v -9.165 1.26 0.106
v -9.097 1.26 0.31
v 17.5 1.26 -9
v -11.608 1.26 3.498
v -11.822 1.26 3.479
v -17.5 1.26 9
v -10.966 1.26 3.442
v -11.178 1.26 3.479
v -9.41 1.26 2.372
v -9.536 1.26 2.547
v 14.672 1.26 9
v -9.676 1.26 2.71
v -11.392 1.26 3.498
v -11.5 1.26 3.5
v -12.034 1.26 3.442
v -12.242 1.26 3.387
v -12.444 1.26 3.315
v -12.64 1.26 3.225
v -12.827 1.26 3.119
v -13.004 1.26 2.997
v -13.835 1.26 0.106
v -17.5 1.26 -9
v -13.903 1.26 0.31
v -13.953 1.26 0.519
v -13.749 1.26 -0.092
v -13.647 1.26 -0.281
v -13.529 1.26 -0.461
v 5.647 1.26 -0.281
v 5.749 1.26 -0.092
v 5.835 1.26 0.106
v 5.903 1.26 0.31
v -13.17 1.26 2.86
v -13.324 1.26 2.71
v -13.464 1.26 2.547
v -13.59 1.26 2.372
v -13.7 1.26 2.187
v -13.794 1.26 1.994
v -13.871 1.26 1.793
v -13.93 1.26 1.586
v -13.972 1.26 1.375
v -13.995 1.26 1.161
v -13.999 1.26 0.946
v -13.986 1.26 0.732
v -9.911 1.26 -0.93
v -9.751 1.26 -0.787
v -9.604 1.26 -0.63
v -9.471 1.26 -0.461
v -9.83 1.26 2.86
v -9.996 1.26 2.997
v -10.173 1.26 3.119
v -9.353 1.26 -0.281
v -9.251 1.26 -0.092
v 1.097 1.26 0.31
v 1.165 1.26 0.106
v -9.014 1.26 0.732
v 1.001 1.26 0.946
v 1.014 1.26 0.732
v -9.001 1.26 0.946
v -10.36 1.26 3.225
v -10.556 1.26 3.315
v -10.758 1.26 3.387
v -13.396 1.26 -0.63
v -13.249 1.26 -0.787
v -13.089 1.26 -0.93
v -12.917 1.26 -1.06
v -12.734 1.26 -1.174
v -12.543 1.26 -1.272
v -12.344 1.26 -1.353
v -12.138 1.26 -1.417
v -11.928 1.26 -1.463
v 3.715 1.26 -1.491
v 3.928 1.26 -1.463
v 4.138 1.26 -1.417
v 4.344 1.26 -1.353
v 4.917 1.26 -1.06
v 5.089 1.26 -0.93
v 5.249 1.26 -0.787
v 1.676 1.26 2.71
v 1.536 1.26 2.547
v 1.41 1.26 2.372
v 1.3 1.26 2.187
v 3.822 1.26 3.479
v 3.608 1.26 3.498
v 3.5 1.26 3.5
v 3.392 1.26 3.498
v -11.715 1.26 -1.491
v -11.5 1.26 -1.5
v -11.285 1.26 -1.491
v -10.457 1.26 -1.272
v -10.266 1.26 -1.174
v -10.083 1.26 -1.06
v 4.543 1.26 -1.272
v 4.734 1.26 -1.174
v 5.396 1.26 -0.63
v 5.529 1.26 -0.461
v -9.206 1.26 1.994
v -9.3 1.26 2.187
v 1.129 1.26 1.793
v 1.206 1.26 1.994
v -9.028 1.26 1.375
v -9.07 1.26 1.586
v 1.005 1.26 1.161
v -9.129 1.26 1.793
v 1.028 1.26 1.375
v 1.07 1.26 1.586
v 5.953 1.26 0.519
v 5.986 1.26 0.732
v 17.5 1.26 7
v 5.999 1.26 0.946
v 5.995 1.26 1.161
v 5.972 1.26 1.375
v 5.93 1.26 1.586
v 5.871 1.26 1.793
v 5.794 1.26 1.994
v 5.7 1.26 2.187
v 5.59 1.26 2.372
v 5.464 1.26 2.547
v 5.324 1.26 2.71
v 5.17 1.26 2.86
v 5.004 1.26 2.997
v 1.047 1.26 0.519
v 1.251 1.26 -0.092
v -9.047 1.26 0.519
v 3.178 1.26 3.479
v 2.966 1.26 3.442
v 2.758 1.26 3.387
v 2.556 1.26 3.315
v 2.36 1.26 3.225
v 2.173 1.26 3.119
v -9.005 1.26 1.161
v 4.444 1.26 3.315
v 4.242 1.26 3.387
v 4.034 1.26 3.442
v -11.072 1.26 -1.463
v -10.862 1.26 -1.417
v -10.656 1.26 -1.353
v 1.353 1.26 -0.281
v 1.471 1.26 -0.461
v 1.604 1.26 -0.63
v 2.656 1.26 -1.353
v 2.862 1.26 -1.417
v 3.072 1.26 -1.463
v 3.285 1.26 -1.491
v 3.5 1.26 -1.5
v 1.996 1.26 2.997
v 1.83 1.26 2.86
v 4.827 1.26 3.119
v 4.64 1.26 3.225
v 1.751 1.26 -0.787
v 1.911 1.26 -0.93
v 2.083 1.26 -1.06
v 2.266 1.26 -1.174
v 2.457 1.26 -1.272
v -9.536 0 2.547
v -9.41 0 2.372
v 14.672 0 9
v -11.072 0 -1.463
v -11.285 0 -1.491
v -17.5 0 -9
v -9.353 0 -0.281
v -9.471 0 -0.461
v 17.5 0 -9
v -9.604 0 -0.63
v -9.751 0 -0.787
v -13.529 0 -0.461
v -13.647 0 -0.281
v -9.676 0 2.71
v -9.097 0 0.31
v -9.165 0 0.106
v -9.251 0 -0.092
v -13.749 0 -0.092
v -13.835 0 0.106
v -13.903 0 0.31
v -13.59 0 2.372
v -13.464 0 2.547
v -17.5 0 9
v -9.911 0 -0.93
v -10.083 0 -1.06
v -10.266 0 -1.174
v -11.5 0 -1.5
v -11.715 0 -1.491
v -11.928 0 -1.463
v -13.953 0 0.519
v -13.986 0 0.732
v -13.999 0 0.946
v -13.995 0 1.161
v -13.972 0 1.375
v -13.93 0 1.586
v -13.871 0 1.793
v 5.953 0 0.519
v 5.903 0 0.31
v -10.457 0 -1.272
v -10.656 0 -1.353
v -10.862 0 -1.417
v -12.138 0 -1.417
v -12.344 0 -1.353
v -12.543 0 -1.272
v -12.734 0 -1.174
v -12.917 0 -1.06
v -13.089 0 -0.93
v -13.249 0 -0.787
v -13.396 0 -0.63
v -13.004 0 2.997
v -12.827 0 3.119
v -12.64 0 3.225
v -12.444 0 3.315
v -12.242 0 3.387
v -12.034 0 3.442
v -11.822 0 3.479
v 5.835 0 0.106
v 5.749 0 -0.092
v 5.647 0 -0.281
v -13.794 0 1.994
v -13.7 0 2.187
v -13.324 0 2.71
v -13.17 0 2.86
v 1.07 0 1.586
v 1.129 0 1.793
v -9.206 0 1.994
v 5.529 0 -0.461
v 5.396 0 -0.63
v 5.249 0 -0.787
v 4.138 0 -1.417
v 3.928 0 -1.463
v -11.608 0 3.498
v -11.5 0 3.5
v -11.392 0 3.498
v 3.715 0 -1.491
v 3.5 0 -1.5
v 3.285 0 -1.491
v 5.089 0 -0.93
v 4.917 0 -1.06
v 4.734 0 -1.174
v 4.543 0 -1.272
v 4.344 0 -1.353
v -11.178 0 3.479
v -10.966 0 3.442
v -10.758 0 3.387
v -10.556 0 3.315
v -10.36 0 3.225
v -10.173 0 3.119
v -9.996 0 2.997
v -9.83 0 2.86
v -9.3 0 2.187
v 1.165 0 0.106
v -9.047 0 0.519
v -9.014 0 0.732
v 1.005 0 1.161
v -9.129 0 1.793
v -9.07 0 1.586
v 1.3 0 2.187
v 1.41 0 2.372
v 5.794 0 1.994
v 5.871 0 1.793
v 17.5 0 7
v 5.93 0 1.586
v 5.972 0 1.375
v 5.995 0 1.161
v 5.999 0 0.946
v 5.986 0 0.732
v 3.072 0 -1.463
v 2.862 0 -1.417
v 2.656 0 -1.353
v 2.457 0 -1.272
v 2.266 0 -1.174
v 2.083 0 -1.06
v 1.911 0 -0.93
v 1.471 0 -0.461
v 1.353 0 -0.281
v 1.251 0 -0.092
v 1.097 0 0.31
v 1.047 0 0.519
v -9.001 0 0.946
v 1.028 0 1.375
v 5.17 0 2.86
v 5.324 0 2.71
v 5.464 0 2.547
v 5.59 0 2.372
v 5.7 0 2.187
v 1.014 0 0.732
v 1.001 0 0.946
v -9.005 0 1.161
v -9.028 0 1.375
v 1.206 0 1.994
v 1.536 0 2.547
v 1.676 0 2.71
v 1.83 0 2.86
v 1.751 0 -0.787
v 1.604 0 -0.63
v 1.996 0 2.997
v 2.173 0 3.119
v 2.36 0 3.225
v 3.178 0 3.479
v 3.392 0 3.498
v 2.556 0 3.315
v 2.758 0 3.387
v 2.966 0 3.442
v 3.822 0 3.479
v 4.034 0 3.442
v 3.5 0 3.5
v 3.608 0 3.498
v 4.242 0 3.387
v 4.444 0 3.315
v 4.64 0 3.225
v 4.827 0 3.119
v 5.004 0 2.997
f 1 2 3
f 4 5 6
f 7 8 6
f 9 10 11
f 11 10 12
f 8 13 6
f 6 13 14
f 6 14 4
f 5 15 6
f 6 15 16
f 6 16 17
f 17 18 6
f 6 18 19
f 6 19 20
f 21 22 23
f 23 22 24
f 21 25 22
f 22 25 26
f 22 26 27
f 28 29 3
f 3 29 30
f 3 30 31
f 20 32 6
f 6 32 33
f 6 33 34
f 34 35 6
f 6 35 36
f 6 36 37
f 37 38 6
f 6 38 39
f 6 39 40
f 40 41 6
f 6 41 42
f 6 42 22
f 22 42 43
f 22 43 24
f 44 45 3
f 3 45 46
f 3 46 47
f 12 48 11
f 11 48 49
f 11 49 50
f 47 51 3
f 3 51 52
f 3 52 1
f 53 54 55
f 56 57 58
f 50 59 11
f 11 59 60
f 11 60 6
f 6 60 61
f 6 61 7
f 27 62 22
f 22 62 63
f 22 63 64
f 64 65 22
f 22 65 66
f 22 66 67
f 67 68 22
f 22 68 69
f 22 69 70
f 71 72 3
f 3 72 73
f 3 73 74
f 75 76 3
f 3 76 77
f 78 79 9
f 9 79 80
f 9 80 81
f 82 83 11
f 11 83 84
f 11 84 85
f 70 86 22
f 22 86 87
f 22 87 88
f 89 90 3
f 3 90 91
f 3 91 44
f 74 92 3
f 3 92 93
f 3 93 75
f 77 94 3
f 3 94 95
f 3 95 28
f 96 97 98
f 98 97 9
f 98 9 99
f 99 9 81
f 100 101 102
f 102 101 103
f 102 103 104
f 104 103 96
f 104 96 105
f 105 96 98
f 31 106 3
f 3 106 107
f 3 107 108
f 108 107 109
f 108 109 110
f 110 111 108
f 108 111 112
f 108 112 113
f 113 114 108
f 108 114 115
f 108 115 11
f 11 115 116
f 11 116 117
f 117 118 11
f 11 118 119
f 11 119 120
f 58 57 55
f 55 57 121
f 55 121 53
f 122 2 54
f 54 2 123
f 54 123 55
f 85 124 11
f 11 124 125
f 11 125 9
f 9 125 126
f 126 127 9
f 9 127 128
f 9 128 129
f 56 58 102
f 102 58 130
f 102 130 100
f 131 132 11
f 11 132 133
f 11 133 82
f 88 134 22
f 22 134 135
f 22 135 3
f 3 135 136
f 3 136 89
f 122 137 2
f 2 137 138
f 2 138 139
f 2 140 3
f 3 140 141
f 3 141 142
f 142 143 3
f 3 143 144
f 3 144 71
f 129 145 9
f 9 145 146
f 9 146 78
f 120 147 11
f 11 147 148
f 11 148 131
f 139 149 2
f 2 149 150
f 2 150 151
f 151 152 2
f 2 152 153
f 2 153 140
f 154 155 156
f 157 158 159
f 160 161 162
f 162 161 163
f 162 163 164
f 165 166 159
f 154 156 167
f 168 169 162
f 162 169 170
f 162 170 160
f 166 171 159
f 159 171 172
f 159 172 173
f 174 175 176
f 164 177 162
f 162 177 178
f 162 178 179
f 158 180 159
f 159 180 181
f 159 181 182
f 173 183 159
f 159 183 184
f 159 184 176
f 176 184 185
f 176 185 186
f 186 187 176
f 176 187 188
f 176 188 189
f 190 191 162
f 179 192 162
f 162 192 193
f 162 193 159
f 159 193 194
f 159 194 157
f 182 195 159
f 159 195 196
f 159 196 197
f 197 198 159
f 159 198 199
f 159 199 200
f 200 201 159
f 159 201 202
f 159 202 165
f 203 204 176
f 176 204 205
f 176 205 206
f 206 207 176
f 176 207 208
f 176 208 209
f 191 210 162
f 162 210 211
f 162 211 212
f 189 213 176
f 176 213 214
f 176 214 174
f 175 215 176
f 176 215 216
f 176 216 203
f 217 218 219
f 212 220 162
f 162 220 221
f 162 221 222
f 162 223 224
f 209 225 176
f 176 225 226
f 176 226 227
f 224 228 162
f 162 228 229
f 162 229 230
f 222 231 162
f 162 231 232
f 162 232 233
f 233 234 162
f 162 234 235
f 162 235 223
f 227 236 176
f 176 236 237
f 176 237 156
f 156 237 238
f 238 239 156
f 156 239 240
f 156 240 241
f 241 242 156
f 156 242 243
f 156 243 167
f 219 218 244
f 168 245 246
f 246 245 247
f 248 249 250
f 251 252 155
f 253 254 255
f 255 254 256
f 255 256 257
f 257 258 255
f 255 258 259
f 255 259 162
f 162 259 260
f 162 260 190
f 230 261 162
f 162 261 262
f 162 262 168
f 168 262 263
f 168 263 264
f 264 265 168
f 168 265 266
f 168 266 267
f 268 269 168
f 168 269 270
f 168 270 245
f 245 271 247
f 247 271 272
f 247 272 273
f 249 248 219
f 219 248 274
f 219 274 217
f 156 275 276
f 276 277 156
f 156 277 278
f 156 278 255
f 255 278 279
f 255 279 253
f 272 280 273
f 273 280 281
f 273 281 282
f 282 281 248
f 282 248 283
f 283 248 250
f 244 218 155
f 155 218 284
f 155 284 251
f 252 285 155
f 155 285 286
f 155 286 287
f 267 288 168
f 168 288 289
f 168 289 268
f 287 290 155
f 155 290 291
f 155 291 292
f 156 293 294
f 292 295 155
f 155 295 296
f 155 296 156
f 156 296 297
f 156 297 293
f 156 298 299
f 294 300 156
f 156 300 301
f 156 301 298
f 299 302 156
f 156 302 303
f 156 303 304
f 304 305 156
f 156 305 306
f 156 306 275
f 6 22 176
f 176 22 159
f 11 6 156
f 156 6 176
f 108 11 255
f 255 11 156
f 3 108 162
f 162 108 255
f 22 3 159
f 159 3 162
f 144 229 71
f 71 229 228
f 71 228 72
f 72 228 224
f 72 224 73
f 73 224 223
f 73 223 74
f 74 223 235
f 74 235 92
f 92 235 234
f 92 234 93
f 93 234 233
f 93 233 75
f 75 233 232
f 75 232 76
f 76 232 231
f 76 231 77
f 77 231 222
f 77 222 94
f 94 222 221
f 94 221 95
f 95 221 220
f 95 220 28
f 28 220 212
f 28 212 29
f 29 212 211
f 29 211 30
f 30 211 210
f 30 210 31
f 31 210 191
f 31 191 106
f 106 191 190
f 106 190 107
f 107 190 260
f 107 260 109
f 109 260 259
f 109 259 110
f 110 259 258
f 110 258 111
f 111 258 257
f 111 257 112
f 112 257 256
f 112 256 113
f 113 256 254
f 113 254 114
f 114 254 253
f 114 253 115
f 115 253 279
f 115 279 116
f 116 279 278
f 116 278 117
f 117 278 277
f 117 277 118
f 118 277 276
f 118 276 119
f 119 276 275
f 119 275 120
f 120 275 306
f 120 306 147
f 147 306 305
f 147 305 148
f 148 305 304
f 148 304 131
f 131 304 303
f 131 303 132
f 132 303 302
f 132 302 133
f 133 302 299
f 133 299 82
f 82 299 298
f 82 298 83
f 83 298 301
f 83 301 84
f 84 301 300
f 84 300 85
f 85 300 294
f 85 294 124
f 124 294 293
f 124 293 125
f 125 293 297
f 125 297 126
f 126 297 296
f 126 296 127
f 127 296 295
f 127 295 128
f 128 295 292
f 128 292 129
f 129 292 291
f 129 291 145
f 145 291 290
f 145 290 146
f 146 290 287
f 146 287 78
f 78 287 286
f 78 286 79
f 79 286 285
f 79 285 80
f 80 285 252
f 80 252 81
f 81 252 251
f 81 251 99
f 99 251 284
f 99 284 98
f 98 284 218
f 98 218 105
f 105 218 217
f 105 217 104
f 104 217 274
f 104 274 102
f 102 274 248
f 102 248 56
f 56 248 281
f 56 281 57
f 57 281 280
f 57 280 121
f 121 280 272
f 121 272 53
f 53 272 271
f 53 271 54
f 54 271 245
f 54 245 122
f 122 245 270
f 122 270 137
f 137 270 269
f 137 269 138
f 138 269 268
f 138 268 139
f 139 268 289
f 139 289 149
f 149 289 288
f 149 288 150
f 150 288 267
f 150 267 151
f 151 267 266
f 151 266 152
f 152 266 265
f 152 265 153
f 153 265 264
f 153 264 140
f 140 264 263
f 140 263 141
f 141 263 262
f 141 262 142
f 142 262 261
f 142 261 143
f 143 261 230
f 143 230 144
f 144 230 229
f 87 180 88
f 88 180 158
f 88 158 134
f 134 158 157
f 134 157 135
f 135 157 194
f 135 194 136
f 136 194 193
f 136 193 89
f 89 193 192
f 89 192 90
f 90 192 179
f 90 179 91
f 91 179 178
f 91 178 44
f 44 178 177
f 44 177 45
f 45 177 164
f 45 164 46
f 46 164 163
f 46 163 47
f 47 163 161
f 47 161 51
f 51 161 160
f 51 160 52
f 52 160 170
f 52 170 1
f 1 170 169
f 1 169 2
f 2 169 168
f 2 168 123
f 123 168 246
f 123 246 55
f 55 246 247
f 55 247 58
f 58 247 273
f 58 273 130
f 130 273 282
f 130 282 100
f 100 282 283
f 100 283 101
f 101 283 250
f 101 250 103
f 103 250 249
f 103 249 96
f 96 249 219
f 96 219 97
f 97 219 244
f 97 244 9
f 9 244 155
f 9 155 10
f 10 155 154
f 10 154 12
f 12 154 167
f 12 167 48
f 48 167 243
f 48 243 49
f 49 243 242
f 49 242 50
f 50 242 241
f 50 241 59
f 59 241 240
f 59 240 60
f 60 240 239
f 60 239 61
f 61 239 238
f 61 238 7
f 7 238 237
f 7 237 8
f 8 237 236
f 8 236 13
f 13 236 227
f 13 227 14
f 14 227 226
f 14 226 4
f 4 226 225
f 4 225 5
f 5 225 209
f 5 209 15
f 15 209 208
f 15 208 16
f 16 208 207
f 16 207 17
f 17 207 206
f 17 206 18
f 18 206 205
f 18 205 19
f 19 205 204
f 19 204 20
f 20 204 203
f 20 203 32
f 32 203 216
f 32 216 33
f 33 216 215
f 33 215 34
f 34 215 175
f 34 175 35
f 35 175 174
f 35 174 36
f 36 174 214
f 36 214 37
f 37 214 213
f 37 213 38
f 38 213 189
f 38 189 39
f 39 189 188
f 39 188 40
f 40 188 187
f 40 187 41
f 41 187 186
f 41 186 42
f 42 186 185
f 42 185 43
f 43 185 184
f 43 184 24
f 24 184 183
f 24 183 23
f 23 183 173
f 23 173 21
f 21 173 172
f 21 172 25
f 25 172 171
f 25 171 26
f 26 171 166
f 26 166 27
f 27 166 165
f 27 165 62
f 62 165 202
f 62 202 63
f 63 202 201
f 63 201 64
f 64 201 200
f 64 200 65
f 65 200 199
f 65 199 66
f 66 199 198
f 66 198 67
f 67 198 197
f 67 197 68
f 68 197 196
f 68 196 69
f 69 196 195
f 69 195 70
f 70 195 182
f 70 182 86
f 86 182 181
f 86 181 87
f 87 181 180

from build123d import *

# Parameters (mm, degrees)
ESBO_O1_R                = 2.5
RESSALTO_EXTRUS_O1_DEPTH = 1.26


with BuildPart() as part:
    # Esboço1 → Ressalto-extrusão1 (new body)
    with BuildSketch(Plane(origin=(0, 0, 0), x_dir=(1, 0, 0), z_dir=(0, 1, 0))):
        Polygon((-17.5, -9), (14.671572875, -9), (17.5, -7), (17.5, 9), (-17.5, 9), align=None)
        with Locations(Location((3.5, -1, 0), (0, 0, 270))):
            Circle(ESBO_O1_R, mode=Mode.SUBTRACT)
        with Locations(Location((-11.5, -1, 0), (0, 0, 270))):
            Circle(ESBO_O1_R, mode=Mode.SUBTRACT)
    extrude(amount=RESSALTO_EXTRUS_O1_DEPTH)


solid = part.part
